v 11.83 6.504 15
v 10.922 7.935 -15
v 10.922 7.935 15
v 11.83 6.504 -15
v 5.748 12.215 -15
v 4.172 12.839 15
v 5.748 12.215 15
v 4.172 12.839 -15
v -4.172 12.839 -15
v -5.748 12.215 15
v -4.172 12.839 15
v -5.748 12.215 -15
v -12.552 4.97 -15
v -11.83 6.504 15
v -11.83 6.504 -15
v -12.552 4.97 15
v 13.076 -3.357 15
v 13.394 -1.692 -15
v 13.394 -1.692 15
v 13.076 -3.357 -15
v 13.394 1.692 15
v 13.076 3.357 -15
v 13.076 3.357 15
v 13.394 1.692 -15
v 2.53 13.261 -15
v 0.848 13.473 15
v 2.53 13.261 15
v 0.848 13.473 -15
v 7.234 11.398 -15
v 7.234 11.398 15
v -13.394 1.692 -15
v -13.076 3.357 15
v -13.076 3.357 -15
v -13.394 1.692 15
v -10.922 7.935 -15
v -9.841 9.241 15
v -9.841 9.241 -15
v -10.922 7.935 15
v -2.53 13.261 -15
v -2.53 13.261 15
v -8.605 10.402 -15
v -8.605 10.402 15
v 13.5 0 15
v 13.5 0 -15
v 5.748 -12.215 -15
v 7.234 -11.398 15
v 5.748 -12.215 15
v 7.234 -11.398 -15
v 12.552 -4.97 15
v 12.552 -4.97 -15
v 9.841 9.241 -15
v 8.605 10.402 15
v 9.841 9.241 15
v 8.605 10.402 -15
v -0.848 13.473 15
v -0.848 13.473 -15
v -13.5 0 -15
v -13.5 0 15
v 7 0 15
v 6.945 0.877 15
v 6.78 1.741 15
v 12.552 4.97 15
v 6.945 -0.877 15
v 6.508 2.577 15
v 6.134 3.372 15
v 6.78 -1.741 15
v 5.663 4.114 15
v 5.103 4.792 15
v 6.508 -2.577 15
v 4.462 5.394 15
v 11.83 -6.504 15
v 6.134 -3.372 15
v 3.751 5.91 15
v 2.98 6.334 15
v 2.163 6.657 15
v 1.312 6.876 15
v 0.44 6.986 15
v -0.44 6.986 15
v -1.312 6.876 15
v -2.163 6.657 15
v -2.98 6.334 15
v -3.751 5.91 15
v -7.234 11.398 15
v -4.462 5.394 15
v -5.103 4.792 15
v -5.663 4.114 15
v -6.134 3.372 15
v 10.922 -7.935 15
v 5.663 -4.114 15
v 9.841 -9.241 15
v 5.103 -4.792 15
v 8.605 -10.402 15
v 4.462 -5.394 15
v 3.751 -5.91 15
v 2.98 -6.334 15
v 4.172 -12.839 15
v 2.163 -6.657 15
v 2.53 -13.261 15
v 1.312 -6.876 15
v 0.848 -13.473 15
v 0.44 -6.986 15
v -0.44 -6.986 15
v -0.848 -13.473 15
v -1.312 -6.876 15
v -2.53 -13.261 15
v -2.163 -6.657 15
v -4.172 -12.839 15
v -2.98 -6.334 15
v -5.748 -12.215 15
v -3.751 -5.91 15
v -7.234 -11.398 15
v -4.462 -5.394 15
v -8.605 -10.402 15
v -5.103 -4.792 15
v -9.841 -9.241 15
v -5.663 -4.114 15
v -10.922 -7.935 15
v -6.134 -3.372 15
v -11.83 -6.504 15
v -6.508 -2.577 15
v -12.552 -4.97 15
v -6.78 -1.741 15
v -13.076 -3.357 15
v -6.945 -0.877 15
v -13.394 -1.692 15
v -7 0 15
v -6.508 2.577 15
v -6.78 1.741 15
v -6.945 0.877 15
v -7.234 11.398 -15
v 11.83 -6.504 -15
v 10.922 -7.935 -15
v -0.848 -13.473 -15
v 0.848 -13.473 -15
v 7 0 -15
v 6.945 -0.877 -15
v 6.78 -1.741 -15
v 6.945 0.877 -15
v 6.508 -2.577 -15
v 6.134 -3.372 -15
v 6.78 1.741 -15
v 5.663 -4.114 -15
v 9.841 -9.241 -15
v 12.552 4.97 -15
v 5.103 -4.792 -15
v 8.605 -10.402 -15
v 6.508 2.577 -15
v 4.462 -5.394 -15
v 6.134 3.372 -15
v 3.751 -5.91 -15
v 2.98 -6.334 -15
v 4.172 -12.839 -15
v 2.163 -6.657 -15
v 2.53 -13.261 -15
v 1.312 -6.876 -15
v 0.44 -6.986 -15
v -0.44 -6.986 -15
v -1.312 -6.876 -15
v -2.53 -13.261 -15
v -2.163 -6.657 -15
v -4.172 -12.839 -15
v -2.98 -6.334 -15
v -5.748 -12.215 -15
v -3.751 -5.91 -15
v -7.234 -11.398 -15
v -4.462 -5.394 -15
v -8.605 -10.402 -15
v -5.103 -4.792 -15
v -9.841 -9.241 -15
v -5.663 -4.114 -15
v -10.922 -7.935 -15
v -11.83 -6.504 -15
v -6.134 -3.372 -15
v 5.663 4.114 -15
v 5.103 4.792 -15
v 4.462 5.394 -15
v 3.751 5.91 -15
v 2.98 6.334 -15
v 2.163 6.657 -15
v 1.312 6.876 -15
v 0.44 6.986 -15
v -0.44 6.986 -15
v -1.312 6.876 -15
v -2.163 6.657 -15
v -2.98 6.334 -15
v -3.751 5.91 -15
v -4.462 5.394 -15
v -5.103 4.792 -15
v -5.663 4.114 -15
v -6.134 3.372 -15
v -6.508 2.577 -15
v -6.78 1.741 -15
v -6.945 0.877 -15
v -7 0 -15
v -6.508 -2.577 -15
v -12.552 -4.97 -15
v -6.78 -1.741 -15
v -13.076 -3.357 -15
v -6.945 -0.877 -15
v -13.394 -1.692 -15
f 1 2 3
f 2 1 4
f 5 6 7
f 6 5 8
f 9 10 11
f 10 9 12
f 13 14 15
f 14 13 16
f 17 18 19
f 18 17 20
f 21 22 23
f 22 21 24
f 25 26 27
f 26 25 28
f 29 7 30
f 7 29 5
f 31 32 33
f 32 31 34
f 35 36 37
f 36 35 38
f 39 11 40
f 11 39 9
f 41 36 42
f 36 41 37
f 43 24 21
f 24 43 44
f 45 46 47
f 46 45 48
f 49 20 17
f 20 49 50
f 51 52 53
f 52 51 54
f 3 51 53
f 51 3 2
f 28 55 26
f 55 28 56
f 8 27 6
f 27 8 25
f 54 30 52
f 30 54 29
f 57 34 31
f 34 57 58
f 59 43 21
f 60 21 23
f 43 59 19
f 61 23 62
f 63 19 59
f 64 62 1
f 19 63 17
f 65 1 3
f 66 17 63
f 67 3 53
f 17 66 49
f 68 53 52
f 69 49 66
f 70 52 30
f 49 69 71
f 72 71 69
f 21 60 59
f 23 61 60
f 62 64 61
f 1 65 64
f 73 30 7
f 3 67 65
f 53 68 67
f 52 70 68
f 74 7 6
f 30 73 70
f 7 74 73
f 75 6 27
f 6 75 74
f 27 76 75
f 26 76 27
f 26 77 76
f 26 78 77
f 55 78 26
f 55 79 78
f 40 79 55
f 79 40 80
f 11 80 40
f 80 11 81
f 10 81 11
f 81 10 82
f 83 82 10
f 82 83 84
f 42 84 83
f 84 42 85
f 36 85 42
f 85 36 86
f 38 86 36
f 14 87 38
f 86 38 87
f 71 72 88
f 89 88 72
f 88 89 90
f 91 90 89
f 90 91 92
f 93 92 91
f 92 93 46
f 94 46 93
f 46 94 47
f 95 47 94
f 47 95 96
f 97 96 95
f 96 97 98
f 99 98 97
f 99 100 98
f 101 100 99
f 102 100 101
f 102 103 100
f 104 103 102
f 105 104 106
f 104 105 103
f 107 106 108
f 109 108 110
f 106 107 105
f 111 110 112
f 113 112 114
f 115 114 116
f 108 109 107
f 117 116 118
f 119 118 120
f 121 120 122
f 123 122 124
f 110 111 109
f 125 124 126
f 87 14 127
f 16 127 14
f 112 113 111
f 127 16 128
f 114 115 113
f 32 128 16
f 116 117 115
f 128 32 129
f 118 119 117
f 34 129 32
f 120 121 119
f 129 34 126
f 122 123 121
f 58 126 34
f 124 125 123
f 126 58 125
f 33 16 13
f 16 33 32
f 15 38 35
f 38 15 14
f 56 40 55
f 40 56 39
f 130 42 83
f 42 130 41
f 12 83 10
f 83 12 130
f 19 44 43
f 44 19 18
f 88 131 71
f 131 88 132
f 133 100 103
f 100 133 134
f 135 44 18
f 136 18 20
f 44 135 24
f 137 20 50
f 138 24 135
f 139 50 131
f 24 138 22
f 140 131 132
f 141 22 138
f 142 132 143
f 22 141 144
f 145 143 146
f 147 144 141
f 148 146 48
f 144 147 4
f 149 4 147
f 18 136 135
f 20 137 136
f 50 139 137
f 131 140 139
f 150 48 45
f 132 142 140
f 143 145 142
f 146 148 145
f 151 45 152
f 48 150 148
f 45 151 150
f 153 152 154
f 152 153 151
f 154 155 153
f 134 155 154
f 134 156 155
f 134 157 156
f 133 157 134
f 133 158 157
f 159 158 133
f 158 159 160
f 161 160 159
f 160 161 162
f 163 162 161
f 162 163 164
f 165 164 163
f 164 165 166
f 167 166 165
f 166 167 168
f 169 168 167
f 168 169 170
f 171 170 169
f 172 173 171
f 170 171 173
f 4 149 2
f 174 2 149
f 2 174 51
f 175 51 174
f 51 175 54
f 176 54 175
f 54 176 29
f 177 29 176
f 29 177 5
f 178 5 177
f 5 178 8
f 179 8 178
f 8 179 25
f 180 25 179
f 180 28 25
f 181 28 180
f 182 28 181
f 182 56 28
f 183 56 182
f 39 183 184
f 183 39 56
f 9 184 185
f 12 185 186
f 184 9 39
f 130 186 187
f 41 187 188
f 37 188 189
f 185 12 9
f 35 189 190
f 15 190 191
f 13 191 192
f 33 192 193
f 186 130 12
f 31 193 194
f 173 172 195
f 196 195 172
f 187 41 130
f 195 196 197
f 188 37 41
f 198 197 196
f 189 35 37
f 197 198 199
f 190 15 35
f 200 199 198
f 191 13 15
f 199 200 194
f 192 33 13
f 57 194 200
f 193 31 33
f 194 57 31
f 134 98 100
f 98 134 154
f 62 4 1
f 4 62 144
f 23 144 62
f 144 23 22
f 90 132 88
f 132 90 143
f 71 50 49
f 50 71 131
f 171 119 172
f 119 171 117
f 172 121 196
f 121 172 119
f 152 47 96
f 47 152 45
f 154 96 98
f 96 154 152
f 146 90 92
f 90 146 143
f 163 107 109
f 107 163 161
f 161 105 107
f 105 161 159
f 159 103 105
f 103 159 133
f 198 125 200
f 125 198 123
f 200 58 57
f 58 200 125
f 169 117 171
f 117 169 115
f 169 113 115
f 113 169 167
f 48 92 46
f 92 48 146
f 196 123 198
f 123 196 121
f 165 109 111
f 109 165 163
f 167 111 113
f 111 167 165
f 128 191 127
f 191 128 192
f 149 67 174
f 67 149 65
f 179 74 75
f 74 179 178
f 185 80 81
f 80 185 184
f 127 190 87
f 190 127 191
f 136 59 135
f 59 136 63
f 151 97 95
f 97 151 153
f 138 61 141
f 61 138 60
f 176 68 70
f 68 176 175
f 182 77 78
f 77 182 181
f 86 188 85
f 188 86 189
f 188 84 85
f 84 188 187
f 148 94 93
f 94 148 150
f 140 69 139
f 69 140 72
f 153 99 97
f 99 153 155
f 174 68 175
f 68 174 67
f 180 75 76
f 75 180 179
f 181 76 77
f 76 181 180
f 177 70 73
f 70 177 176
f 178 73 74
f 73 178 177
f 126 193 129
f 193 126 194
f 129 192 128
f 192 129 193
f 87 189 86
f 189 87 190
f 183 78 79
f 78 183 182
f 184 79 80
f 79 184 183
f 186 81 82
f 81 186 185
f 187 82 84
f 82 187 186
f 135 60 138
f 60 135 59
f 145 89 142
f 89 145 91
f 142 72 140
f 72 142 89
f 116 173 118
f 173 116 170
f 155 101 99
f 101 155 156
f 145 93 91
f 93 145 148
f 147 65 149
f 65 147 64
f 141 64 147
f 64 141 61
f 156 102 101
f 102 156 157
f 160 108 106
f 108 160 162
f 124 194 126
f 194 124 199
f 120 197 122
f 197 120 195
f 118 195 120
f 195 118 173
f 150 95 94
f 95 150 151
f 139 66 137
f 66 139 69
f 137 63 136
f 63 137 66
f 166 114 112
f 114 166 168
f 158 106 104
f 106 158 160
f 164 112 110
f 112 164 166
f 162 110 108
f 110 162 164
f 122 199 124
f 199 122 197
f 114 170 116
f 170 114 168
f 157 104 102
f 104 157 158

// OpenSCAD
$fn = 50;


difference() {
	union() {
		translate(v = [0, 0, -15.0000000000]) {
			cylinder(h = 30, r = 13.5000000000);
		}
	}
	union() {
		translate(v = [0, 0, -100.0000000000]) {
			cylinder(h = 200, r = 7);
		}
	}
}
